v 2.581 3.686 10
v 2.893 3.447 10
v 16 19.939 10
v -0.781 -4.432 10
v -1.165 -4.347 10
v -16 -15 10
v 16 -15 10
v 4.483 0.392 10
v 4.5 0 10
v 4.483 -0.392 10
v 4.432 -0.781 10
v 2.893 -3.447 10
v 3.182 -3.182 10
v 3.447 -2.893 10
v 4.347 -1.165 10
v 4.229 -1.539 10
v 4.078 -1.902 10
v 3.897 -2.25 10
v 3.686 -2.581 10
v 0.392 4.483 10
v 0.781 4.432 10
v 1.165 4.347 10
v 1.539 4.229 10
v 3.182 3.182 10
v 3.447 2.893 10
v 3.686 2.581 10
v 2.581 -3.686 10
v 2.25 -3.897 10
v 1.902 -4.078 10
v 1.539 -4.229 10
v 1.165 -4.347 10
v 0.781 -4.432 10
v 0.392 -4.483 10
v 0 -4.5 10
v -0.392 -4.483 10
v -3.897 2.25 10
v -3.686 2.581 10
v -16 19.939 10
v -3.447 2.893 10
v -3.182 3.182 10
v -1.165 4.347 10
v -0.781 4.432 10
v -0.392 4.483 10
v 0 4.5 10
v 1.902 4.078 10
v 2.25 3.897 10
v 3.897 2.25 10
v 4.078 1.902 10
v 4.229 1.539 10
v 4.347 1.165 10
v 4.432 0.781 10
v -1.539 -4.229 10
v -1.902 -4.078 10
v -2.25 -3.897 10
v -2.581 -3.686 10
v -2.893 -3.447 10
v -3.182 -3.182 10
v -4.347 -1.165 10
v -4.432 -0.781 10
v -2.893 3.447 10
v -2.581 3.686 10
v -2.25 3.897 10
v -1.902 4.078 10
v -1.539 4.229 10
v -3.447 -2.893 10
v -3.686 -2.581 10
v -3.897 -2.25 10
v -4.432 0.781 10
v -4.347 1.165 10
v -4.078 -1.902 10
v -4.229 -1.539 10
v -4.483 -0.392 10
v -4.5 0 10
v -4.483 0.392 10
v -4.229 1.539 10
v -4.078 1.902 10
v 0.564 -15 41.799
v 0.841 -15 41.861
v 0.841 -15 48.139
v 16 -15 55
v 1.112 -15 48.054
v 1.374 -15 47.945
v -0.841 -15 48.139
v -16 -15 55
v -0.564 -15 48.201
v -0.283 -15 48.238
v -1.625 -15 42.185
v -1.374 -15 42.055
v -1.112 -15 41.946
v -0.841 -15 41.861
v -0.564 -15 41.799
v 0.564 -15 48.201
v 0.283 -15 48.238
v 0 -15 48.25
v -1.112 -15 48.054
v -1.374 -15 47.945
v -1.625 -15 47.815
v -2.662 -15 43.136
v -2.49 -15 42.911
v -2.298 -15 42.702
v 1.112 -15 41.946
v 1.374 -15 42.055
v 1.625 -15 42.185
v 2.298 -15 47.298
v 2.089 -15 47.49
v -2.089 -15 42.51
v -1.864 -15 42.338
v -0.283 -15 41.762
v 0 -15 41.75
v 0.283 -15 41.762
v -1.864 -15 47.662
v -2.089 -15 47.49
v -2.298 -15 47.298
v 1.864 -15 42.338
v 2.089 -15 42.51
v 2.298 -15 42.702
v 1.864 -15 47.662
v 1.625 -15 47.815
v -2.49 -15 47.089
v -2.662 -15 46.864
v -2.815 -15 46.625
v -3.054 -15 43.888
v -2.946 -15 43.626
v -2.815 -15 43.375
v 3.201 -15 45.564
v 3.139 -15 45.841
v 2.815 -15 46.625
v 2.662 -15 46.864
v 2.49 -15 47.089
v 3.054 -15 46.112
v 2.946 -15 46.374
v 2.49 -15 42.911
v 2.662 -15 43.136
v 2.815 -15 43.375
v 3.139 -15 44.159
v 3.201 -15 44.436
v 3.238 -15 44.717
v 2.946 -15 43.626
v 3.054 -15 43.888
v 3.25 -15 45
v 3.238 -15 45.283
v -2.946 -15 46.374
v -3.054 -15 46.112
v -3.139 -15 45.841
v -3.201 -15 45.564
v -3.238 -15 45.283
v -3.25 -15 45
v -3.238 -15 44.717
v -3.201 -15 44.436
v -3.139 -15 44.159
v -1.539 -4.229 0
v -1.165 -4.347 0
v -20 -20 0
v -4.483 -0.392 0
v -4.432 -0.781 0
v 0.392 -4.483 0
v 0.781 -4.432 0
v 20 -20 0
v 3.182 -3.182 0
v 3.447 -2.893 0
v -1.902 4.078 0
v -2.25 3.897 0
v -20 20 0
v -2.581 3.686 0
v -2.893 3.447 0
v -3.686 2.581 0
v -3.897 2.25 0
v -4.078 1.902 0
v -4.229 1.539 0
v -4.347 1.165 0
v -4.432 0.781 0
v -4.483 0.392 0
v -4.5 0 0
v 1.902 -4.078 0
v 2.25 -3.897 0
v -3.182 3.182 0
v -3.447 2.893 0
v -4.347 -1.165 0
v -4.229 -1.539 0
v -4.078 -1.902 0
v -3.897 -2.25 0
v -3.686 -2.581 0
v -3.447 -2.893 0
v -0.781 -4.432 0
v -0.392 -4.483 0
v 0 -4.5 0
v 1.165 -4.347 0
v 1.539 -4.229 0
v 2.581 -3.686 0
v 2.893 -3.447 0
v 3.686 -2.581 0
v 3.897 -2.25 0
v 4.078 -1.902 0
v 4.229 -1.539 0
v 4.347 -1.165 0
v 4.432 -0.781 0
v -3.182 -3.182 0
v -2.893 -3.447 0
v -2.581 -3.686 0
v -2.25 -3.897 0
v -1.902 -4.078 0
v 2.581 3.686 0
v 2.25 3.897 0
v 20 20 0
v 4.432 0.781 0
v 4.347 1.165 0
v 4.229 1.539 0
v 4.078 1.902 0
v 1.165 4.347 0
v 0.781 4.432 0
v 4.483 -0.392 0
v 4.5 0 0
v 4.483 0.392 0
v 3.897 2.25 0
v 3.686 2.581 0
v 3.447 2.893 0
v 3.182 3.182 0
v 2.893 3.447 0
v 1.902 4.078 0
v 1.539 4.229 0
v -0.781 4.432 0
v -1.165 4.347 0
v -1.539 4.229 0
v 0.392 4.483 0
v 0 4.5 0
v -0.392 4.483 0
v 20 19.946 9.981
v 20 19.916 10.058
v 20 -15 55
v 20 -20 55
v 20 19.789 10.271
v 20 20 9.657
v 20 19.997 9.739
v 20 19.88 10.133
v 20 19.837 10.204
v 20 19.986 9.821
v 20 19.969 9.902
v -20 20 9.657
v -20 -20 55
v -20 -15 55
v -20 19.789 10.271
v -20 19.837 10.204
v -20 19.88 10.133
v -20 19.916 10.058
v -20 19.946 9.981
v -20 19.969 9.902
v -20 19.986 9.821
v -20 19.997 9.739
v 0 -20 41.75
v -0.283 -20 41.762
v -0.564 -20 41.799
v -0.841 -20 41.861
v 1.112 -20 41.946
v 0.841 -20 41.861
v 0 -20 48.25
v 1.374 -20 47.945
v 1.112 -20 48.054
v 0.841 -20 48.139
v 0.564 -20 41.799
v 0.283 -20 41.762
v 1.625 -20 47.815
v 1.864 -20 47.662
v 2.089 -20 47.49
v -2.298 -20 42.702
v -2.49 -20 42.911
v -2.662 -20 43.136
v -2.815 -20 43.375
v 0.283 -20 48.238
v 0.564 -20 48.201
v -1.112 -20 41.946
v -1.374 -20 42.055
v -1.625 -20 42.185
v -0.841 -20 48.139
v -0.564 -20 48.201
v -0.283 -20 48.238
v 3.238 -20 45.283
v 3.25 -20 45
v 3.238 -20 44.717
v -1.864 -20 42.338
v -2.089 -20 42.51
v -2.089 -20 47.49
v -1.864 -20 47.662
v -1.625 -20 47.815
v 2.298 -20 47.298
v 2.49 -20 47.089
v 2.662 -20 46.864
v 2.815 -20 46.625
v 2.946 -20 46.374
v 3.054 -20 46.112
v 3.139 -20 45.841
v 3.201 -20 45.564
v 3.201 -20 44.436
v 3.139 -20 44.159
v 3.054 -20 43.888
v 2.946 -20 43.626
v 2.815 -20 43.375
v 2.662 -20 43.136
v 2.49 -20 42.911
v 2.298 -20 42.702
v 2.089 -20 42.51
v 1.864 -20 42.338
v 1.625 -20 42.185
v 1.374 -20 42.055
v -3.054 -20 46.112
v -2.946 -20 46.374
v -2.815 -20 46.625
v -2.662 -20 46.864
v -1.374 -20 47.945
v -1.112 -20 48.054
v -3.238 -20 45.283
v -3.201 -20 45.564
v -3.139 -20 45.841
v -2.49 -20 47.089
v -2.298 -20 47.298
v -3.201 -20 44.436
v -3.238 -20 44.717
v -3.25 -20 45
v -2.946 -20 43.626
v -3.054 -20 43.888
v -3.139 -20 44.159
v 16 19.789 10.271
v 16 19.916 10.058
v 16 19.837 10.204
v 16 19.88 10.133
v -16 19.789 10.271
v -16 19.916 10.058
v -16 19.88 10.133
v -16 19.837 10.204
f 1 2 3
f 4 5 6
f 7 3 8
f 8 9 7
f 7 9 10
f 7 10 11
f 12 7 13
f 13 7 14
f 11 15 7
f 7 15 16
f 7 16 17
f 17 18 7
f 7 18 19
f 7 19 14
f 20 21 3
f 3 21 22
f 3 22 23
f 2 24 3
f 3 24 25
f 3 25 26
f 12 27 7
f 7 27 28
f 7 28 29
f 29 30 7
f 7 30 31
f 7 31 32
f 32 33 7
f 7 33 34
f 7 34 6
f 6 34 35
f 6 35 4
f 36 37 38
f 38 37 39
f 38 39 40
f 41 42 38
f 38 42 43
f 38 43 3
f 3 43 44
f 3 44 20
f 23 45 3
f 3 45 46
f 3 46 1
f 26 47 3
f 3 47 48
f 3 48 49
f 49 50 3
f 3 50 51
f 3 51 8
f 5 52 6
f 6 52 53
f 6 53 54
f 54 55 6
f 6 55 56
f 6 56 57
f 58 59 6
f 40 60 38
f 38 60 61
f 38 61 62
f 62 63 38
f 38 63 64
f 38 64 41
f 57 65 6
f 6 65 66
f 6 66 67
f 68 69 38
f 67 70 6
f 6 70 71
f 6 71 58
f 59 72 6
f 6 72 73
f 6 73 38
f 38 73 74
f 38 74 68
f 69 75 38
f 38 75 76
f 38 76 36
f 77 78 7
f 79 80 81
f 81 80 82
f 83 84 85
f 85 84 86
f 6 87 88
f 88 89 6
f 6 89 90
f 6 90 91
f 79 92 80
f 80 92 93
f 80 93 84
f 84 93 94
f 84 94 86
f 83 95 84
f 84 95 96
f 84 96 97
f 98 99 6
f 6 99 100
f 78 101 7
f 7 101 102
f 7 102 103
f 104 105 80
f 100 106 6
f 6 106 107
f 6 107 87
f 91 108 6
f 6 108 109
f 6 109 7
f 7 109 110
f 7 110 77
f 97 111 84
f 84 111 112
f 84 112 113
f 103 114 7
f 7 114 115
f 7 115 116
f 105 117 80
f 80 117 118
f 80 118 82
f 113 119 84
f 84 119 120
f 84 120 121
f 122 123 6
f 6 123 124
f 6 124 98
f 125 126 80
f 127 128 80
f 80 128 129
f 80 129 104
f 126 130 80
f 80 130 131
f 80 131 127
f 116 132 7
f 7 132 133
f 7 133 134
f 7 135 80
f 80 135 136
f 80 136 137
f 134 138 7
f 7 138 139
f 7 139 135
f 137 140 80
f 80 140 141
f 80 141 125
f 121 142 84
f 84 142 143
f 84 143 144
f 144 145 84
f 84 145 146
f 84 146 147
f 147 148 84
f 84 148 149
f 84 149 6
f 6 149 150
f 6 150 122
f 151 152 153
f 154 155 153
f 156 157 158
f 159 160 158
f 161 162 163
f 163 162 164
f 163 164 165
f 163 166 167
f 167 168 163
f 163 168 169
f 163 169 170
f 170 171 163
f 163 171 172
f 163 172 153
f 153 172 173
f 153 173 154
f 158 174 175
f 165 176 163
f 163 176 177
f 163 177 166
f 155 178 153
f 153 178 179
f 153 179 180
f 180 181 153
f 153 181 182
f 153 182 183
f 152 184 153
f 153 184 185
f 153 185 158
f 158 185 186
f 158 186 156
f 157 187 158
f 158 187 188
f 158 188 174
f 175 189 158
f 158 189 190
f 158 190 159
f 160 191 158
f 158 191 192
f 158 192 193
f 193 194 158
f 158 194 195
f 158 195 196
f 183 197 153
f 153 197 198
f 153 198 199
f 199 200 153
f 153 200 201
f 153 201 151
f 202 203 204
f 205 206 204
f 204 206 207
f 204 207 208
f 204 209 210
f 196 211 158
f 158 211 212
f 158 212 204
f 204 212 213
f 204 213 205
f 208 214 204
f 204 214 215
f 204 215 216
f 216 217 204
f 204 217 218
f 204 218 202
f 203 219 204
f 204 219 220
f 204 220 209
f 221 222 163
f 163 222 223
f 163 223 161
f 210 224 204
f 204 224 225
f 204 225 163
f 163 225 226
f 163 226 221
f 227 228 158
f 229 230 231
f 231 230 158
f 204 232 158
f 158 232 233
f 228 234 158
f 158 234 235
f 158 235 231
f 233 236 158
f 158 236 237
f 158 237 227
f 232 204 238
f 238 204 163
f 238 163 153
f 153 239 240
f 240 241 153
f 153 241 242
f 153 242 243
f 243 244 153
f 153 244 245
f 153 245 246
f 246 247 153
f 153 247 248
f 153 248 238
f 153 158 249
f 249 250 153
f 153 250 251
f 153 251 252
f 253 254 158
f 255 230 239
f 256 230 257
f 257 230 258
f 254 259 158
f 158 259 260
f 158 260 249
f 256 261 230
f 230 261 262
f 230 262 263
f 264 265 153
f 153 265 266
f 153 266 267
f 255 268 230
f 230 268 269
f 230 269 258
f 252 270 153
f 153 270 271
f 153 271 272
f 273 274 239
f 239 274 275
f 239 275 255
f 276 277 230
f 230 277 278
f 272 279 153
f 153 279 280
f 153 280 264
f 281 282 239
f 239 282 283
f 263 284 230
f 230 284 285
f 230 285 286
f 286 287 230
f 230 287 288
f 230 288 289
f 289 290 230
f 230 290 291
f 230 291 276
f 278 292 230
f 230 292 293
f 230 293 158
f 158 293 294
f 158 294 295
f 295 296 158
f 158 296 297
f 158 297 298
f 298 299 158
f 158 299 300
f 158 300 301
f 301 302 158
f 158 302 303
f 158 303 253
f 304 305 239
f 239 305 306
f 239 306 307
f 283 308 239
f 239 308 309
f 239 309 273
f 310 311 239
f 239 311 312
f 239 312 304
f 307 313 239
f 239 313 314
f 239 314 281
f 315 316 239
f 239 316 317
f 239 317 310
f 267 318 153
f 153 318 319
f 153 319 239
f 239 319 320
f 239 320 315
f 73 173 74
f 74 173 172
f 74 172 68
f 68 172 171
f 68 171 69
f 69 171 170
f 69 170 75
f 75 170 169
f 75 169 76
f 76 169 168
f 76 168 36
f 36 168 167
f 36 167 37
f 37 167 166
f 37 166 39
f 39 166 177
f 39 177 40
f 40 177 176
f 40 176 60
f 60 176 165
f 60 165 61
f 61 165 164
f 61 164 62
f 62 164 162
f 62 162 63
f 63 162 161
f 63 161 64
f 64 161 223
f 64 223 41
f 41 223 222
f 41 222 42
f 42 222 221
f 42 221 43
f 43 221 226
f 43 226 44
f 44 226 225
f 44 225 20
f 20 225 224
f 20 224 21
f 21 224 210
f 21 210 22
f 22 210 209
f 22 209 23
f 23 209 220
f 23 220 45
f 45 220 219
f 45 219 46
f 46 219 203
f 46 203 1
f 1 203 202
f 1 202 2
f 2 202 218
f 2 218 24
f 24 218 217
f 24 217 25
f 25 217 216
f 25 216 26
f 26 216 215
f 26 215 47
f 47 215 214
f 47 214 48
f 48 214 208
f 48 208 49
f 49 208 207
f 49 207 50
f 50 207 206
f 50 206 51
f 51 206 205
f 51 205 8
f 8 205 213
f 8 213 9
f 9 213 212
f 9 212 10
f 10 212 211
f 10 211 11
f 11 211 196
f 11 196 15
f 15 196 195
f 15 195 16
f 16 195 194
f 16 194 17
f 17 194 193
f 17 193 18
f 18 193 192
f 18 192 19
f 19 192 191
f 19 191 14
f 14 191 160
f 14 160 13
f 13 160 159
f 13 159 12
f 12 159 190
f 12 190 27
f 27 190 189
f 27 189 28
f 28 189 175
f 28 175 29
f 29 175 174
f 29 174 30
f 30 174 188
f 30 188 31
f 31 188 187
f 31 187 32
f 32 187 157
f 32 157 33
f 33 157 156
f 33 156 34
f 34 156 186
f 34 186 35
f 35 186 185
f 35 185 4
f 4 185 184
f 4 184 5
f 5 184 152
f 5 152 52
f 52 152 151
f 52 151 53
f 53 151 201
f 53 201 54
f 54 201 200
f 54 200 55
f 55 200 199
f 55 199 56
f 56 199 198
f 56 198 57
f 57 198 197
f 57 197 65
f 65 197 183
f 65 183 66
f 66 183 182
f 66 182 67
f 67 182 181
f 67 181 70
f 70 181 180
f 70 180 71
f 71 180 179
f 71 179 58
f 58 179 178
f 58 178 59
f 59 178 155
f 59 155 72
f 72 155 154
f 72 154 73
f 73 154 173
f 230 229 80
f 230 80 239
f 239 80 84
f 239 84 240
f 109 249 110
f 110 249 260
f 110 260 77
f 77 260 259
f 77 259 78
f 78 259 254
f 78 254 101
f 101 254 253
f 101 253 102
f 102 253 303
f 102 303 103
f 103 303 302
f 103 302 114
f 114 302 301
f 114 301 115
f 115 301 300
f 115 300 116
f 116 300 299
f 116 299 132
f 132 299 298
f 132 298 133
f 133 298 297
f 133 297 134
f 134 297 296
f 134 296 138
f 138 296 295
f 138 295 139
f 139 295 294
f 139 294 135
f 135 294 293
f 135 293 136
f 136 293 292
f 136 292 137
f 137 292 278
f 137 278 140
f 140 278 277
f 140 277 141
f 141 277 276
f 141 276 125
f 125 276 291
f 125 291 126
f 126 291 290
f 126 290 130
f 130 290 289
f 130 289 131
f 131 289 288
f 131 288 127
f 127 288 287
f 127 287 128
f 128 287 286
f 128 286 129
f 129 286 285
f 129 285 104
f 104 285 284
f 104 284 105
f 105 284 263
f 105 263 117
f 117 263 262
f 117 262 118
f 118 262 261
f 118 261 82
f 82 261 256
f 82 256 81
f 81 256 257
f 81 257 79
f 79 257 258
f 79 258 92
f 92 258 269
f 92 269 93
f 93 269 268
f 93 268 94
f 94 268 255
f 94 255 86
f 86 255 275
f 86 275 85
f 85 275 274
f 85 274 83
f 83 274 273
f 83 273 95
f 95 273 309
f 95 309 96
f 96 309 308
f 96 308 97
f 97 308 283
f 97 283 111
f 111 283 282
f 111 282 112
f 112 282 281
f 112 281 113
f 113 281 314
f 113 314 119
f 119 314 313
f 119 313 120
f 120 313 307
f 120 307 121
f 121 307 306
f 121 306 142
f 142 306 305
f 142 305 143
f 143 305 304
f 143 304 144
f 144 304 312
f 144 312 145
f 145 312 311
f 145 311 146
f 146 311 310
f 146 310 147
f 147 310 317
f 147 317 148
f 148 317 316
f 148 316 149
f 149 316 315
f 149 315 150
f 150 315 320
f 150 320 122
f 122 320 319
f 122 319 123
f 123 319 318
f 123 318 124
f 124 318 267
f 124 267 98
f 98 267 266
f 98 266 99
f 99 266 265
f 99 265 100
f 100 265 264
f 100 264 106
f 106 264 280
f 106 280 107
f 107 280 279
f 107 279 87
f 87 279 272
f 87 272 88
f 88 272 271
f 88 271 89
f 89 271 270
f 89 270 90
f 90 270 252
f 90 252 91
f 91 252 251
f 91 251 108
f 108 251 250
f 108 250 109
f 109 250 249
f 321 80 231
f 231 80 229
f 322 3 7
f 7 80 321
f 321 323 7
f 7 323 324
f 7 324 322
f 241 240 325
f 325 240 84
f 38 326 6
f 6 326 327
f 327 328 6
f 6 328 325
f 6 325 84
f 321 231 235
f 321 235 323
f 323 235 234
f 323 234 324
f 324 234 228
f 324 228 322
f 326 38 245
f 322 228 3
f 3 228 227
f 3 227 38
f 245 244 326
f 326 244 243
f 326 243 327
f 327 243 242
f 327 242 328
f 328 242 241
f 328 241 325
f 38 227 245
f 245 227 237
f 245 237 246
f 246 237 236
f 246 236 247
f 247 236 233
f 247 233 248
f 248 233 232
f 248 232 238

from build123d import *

# Parameters (mm, degrees)
CROQUIS1_W              = 40
CROQUIS1_H              = 40
CROQUIS1_R              = 4.5
SALIENTE_EXTRUIR1_DEPTH = 10
CROQUIS2_W              = 40
CROQUIS2_H              = 55
CROQUIS2_R              = 3.25
SALIENTE_EXTRUIR2_DEPTH = 5
SALIENTE_EXTRUIR3_DEPTH = 4
REDONDEO1_START         = -21
REDONDEO1_DEPTH         = 42


with BuildPart() as part:
    # Croquis1 → Saliente-Extruir1 (new body)
    with BuildSketch(Plane.XY):
        Rectangle(CROQUIS1_W, CROQUIS1_H)
        Circle(CROQUIS1_R, mode=Mode.SUBTRACT)
    extrude(amount=SALIENTE_EXTRUIR1_DEPTH)

    # Croquis2 → Saliente-Extruir2 (add)
    with BuildSketch(Plane.XZ.offset(20)):
        with Locations((0, 27.5)):
            Rectangle(CROQUIS2_W, CROQUIS2_H)
        with Locations(Location((0, 45, 0), (0, 0, 270))):
            Circle(CROQUIS2_R, mode=Mode.SUBTRACT)
    extrude(amount=-SALIENTE_EXTRUIR2_DEPTH)

    # Croquis3 → Saliente-Extruir3 (add)
    with BuildSketch(Plane(origin=(20, 0, 0), x_dir=(0, 0, -1), z_dir=(1, 0, 0))):
        Polygon((-55, -15), (-10, 20), (-10, -15), align=None)
    saliente_extruir3 = extrude(amount=-SALIENTE_EXTRUIR3_DEPTH)

    # Simetría1: Saliente-Extruir3 across plane
    add(saliente_extruir3.mirror(Plane(origin=(0, 0, 0), x_dir=(0, 0, 1), z_dir=(1, 0, 0))))

    # Redondeo1: read off the stored shape, not the designer's step
    # Redondeo1 outline → Redondeo1 (cut)
    with BuildSketch(Plane.YZ.offset(REDONDEO1_START)):
        with BuildLine():
            Line((20, 9.65689225), (20, 10))
            Line((20, 10), (19.789352217, 10.270832863))
            ThreePointArc((19.789352217, 10.270832863), (19.945873199, 9.981428675), (20, 9.65689225))
        make_face()
    extrude(amount=REDONDEO1_DEPTH, mode=Mode.SUBTRACT)


solid = part.part
